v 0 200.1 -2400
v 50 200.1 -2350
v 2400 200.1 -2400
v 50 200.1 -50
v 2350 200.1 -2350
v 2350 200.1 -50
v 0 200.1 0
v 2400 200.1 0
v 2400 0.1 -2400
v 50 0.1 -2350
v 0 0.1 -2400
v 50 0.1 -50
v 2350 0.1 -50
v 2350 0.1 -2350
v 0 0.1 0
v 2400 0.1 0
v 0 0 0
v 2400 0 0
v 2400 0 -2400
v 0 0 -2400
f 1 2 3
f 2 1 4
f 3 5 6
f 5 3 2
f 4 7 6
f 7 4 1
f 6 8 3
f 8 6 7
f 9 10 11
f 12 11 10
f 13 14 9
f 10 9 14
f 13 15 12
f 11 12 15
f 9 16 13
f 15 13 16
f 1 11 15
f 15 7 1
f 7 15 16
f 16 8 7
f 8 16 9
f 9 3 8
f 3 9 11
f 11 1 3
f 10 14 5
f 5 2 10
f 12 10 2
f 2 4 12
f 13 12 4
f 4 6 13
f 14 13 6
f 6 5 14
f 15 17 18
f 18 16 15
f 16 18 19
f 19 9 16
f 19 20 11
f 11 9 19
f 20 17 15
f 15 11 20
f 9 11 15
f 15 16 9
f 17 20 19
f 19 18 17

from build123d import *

# Parameters (mm, degrees)
SKETCH1_W           = 2400
SKETCH1_H           = 2400
BOSS_EXTRUDE1_DEPTH = 0.1
SKETCH2_W           = 2400
SKETCH2_H           = 2400
SKETCH2_W_2         = 2300
SKETCH2_H_2         = 2300
BOSS_EXTRUDE3_DEPTH = 200


with BuildPart() as part:
    # Sketch1 → Boss-Extrude1 (new body)
    with BuildSketch(Plane(origin=(0, 0, 0), x_dir=(1, 0, 0), z_dir=(0, 1, 0))):
        with Locations((1200, 1200)):
            Rectangle(SKETCH1_W, SKETCH1_H)
    extrude(amount=BOSS_EXTRUDE1_DEPTH)


with BuildPart() as body_2:
    # Sketch2 → Boss-Extrude3 (new body)
    with BuildSketch(Plane(origin=(0, 0.1, 0), x_dir=(1, 0, 0), z_dir=(0, 1, 0))):
        with Locations((1200, 1200)):
            Rectangle(SKETCH2_W, SKETCH2_H)
        with Locations((1200, 1200)):
            Rectangle(SKETCH2_W_2, SKETCH2_H_2, mode=Mode.SUBTRACT)
    extrude(amount=BOSS_EXTRUDE3_DEPTH)


solid = Compound([part.part, body_2.part])
